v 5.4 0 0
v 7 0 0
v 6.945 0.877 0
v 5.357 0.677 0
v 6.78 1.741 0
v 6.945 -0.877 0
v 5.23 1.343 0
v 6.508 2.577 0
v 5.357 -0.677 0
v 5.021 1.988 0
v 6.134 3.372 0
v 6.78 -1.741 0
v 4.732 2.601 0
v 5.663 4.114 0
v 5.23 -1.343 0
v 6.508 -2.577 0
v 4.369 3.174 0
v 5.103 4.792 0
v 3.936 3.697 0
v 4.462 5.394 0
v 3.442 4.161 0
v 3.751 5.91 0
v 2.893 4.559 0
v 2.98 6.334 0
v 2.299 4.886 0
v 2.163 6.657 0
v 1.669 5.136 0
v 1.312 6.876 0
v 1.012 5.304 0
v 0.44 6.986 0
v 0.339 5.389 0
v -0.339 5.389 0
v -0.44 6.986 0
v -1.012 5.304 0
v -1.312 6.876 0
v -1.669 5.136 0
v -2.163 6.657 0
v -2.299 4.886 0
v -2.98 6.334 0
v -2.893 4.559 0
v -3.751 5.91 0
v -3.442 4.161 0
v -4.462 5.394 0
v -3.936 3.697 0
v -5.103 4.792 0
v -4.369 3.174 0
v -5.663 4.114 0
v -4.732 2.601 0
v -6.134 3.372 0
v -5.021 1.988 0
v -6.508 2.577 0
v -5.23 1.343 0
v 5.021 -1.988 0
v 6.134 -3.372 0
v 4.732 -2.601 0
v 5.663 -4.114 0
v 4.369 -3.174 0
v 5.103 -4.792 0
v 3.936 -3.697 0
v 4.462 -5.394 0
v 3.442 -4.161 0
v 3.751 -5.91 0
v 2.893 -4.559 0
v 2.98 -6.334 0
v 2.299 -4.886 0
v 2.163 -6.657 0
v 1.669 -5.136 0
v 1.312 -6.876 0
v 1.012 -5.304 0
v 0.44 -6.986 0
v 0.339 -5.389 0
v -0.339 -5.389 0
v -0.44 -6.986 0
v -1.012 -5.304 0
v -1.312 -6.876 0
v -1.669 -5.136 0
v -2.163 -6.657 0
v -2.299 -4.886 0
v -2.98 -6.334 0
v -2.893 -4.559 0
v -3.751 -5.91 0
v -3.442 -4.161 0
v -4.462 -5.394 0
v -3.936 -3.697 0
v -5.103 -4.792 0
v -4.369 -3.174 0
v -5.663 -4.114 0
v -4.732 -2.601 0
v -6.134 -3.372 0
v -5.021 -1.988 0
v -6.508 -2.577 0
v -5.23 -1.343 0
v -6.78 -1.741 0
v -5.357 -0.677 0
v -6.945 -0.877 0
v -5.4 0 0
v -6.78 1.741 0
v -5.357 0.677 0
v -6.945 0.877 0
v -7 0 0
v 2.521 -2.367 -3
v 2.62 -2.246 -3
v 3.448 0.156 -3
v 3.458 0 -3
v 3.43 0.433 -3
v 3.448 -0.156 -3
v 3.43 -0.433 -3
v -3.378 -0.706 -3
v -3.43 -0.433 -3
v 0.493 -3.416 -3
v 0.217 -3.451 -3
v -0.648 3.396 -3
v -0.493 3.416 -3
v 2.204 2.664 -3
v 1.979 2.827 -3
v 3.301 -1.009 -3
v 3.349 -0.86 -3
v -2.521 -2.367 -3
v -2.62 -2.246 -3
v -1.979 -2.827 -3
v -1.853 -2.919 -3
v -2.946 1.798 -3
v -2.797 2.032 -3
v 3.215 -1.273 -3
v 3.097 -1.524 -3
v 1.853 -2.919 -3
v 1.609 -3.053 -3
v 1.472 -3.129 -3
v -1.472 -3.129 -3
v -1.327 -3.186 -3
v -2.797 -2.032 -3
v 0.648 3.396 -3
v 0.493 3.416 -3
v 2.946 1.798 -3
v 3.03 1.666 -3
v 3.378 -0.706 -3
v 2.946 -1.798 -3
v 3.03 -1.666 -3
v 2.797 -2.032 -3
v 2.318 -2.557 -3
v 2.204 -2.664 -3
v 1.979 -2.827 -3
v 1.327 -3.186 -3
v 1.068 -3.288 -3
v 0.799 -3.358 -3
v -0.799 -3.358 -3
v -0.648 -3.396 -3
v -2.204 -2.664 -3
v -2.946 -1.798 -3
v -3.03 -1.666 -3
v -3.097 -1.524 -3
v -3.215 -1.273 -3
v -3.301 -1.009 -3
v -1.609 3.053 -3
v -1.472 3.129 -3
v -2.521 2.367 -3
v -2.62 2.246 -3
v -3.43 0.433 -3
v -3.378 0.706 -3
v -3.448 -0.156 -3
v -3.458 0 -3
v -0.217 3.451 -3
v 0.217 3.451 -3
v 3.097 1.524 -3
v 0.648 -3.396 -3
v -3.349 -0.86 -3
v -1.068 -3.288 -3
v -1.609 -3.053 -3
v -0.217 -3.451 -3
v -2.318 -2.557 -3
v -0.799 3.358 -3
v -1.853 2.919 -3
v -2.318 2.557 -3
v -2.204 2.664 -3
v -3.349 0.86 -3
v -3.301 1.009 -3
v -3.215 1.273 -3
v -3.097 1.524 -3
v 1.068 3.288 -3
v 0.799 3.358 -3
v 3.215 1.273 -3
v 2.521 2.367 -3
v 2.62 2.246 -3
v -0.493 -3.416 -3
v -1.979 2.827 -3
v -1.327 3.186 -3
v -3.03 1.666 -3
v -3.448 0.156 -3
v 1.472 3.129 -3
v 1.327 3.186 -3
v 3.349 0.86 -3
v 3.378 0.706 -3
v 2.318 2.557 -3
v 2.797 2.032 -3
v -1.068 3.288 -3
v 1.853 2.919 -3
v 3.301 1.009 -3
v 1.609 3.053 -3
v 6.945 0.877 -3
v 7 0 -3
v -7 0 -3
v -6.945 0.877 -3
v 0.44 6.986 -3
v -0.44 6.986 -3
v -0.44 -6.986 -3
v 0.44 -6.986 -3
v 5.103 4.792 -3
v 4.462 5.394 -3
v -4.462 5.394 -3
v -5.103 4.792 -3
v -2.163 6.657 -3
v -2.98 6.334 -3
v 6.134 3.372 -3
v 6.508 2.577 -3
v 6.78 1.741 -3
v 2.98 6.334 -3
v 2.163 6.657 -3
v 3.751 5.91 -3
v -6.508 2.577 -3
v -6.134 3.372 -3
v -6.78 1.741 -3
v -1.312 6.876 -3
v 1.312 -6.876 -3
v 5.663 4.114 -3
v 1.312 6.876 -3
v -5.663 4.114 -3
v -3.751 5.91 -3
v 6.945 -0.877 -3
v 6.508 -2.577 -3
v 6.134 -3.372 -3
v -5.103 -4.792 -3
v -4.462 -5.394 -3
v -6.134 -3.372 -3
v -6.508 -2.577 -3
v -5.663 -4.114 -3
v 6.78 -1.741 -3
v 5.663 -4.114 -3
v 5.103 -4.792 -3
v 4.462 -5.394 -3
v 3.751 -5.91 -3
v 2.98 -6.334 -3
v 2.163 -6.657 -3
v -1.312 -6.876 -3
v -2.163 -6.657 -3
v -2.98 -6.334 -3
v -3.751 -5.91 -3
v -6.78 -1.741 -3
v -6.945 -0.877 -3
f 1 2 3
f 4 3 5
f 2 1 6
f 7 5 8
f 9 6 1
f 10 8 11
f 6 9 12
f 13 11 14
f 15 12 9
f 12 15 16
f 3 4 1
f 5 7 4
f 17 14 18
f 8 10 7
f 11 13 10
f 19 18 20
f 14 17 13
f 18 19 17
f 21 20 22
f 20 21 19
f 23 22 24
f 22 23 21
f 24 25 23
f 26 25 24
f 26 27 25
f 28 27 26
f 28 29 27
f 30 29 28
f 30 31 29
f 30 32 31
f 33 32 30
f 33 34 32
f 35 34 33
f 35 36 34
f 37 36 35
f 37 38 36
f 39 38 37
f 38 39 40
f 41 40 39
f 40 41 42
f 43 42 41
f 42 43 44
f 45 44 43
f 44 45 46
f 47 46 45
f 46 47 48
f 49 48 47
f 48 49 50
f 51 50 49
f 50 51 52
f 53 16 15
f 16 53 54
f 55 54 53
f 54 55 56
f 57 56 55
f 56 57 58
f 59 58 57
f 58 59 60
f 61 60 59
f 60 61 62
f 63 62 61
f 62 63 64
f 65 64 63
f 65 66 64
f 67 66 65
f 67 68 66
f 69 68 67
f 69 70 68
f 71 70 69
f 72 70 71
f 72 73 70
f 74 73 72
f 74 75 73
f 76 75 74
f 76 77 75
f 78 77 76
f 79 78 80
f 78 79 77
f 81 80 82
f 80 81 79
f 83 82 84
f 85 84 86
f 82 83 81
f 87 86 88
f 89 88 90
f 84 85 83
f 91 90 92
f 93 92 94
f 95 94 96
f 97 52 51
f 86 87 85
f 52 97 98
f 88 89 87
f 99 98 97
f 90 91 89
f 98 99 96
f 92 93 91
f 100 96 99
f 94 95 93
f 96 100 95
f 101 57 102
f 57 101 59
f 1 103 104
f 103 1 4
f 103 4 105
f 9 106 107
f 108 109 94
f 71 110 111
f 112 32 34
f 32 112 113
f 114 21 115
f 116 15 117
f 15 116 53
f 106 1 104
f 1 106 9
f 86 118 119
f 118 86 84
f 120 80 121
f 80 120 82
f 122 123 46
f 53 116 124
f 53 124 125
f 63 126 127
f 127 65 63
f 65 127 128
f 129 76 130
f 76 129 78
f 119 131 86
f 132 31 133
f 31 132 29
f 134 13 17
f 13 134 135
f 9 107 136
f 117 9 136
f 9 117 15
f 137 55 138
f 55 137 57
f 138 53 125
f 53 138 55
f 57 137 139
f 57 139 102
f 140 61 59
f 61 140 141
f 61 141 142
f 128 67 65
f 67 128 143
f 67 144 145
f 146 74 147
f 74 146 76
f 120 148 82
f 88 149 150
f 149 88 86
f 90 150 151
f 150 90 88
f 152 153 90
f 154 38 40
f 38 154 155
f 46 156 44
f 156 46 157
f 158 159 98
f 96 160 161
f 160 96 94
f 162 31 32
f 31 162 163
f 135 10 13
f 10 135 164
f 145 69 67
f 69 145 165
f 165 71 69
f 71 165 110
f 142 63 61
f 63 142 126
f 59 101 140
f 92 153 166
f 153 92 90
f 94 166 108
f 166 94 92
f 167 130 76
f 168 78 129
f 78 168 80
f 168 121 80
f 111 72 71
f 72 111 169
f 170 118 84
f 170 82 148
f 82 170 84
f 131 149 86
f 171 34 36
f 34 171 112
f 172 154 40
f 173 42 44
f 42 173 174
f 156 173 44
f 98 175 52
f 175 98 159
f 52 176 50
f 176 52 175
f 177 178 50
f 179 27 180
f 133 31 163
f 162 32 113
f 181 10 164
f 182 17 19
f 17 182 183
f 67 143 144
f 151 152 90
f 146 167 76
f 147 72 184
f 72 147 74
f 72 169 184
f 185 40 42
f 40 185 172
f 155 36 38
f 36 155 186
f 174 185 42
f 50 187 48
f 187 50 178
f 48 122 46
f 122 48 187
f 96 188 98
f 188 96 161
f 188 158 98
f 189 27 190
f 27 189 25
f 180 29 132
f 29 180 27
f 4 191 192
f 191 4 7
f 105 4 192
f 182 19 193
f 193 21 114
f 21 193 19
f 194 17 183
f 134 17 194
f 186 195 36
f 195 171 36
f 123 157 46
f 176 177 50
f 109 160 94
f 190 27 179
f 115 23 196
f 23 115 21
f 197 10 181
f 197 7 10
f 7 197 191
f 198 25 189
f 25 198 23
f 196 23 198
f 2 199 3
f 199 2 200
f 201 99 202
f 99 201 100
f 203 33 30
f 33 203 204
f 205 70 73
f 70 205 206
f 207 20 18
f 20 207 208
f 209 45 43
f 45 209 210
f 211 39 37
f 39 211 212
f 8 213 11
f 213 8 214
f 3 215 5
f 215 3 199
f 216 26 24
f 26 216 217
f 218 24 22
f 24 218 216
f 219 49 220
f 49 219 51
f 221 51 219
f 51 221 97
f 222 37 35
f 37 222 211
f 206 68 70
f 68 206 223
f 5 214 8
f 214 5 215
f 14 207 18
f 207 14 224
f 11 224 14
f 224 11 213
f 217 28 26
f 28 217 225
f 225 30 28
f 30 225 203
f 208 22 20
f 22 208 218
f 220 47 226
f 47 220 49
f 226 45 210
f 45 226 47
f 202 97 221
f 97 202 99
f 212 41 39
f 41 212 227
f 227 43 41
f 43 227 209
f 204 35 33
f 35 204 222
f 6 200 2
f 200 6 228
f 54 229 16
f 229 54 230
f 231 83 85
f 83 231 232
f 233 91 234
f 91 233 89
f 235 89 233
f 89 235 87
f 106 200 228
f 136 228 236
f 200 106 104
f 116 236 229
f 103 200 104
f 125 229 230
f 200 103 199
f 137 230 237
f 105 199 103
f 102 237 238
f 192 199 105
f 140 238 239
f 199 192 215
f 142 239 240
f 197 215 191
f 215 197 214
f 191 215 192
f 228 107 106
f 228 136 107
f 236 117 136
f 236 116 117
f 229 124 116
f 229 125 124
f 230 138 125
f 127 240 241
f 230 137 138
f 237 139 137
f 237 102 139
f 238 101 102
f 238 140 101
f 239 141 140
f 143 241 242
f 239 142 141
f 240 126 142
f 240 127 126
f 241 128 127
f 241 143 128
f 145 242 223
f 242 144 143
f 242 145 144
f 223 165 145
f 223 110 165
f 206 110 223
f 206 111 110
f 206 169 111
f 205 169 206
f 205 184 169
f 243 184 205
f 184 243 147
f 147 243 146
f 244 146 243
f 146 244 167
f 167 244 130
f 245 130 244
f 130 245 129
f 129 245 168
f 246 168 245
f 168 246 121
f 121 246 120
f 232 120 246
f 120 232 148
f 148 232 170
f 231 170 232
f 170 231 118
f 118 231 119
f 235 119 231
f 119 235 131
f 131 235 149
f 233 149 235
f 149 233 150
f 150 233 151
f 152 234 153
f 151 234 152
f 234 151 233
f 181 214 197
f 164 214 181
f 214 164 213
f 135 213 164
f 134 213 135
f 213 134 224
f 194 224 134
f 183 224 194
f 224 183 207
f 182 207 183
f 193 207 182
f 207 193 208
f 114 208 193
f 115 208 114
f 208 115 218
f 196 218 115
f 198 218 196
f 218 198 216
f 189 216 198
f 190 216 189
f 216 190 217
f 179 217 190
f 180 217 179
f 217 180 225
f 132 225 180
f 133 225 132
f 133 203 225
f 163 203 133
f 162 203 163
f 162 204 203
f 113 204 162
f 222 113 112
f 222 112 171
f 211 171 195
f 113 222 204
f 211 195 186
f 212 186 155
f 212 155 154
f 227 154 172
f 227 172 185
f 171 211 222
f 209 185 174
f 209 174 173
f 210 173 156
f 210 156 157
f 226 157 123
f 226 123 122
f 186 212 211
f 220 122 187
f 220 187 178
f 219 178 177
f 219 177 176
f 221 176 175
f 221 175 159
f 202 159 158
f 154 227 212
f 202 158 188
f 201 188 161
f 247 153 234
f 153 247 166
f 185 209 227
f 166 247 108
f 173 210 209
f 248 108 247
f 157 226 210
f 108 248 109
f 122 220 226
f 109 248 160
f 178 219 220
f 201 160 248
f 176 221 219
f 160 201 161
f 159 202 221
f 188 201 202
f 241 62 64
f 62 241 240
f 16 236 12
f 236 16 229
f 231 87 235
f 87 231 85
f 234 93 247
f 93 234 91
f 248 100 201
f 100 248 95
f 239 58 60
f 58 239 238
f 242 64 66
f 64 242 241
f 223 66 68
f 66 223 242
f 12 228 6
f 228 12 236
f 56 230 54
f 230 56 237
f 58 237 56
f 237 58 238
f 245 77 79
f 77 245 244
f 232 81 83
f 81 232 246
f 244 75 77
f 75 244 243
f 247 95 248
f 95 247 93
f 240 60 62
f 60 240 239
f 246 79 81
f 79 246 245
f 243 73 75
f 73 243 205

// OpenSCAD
$fn = 50;


difference() {
	union() {
		translate(v = [0, 0, -3.0000000000]) {
			cylinder(h = 3, r = 7.0000000000);
		}
		cylinder(h = 0, r = 17.0000000000);
	}
	union() {
		translate(v = [0, 0, 0]) {
			rotate(a = [0, 0, 0]) {
				difference() {
					union() {
						#translate(v = [0, 0, -3.0000000000]) {
							cylinder(h = 3, r = 2.6000000000);
						}
						#translate(v = [0, 0, -3.9000000000]) {
							cylinder(h = 3.9000000000, r1 = 2.8750000000, r2 = 5.4000000000);
						}
						#translate(v = [0, 0, -3.0000000000]) {
							cylinder(h = 3, r = 2.8750000000);
						}
						#translate(v = [0, 0, -3.0000000000]) {
							cylinder(h = 3, r = 2.6000000000);
						}
					}
					union();
				}
			}
		}
	}
}
